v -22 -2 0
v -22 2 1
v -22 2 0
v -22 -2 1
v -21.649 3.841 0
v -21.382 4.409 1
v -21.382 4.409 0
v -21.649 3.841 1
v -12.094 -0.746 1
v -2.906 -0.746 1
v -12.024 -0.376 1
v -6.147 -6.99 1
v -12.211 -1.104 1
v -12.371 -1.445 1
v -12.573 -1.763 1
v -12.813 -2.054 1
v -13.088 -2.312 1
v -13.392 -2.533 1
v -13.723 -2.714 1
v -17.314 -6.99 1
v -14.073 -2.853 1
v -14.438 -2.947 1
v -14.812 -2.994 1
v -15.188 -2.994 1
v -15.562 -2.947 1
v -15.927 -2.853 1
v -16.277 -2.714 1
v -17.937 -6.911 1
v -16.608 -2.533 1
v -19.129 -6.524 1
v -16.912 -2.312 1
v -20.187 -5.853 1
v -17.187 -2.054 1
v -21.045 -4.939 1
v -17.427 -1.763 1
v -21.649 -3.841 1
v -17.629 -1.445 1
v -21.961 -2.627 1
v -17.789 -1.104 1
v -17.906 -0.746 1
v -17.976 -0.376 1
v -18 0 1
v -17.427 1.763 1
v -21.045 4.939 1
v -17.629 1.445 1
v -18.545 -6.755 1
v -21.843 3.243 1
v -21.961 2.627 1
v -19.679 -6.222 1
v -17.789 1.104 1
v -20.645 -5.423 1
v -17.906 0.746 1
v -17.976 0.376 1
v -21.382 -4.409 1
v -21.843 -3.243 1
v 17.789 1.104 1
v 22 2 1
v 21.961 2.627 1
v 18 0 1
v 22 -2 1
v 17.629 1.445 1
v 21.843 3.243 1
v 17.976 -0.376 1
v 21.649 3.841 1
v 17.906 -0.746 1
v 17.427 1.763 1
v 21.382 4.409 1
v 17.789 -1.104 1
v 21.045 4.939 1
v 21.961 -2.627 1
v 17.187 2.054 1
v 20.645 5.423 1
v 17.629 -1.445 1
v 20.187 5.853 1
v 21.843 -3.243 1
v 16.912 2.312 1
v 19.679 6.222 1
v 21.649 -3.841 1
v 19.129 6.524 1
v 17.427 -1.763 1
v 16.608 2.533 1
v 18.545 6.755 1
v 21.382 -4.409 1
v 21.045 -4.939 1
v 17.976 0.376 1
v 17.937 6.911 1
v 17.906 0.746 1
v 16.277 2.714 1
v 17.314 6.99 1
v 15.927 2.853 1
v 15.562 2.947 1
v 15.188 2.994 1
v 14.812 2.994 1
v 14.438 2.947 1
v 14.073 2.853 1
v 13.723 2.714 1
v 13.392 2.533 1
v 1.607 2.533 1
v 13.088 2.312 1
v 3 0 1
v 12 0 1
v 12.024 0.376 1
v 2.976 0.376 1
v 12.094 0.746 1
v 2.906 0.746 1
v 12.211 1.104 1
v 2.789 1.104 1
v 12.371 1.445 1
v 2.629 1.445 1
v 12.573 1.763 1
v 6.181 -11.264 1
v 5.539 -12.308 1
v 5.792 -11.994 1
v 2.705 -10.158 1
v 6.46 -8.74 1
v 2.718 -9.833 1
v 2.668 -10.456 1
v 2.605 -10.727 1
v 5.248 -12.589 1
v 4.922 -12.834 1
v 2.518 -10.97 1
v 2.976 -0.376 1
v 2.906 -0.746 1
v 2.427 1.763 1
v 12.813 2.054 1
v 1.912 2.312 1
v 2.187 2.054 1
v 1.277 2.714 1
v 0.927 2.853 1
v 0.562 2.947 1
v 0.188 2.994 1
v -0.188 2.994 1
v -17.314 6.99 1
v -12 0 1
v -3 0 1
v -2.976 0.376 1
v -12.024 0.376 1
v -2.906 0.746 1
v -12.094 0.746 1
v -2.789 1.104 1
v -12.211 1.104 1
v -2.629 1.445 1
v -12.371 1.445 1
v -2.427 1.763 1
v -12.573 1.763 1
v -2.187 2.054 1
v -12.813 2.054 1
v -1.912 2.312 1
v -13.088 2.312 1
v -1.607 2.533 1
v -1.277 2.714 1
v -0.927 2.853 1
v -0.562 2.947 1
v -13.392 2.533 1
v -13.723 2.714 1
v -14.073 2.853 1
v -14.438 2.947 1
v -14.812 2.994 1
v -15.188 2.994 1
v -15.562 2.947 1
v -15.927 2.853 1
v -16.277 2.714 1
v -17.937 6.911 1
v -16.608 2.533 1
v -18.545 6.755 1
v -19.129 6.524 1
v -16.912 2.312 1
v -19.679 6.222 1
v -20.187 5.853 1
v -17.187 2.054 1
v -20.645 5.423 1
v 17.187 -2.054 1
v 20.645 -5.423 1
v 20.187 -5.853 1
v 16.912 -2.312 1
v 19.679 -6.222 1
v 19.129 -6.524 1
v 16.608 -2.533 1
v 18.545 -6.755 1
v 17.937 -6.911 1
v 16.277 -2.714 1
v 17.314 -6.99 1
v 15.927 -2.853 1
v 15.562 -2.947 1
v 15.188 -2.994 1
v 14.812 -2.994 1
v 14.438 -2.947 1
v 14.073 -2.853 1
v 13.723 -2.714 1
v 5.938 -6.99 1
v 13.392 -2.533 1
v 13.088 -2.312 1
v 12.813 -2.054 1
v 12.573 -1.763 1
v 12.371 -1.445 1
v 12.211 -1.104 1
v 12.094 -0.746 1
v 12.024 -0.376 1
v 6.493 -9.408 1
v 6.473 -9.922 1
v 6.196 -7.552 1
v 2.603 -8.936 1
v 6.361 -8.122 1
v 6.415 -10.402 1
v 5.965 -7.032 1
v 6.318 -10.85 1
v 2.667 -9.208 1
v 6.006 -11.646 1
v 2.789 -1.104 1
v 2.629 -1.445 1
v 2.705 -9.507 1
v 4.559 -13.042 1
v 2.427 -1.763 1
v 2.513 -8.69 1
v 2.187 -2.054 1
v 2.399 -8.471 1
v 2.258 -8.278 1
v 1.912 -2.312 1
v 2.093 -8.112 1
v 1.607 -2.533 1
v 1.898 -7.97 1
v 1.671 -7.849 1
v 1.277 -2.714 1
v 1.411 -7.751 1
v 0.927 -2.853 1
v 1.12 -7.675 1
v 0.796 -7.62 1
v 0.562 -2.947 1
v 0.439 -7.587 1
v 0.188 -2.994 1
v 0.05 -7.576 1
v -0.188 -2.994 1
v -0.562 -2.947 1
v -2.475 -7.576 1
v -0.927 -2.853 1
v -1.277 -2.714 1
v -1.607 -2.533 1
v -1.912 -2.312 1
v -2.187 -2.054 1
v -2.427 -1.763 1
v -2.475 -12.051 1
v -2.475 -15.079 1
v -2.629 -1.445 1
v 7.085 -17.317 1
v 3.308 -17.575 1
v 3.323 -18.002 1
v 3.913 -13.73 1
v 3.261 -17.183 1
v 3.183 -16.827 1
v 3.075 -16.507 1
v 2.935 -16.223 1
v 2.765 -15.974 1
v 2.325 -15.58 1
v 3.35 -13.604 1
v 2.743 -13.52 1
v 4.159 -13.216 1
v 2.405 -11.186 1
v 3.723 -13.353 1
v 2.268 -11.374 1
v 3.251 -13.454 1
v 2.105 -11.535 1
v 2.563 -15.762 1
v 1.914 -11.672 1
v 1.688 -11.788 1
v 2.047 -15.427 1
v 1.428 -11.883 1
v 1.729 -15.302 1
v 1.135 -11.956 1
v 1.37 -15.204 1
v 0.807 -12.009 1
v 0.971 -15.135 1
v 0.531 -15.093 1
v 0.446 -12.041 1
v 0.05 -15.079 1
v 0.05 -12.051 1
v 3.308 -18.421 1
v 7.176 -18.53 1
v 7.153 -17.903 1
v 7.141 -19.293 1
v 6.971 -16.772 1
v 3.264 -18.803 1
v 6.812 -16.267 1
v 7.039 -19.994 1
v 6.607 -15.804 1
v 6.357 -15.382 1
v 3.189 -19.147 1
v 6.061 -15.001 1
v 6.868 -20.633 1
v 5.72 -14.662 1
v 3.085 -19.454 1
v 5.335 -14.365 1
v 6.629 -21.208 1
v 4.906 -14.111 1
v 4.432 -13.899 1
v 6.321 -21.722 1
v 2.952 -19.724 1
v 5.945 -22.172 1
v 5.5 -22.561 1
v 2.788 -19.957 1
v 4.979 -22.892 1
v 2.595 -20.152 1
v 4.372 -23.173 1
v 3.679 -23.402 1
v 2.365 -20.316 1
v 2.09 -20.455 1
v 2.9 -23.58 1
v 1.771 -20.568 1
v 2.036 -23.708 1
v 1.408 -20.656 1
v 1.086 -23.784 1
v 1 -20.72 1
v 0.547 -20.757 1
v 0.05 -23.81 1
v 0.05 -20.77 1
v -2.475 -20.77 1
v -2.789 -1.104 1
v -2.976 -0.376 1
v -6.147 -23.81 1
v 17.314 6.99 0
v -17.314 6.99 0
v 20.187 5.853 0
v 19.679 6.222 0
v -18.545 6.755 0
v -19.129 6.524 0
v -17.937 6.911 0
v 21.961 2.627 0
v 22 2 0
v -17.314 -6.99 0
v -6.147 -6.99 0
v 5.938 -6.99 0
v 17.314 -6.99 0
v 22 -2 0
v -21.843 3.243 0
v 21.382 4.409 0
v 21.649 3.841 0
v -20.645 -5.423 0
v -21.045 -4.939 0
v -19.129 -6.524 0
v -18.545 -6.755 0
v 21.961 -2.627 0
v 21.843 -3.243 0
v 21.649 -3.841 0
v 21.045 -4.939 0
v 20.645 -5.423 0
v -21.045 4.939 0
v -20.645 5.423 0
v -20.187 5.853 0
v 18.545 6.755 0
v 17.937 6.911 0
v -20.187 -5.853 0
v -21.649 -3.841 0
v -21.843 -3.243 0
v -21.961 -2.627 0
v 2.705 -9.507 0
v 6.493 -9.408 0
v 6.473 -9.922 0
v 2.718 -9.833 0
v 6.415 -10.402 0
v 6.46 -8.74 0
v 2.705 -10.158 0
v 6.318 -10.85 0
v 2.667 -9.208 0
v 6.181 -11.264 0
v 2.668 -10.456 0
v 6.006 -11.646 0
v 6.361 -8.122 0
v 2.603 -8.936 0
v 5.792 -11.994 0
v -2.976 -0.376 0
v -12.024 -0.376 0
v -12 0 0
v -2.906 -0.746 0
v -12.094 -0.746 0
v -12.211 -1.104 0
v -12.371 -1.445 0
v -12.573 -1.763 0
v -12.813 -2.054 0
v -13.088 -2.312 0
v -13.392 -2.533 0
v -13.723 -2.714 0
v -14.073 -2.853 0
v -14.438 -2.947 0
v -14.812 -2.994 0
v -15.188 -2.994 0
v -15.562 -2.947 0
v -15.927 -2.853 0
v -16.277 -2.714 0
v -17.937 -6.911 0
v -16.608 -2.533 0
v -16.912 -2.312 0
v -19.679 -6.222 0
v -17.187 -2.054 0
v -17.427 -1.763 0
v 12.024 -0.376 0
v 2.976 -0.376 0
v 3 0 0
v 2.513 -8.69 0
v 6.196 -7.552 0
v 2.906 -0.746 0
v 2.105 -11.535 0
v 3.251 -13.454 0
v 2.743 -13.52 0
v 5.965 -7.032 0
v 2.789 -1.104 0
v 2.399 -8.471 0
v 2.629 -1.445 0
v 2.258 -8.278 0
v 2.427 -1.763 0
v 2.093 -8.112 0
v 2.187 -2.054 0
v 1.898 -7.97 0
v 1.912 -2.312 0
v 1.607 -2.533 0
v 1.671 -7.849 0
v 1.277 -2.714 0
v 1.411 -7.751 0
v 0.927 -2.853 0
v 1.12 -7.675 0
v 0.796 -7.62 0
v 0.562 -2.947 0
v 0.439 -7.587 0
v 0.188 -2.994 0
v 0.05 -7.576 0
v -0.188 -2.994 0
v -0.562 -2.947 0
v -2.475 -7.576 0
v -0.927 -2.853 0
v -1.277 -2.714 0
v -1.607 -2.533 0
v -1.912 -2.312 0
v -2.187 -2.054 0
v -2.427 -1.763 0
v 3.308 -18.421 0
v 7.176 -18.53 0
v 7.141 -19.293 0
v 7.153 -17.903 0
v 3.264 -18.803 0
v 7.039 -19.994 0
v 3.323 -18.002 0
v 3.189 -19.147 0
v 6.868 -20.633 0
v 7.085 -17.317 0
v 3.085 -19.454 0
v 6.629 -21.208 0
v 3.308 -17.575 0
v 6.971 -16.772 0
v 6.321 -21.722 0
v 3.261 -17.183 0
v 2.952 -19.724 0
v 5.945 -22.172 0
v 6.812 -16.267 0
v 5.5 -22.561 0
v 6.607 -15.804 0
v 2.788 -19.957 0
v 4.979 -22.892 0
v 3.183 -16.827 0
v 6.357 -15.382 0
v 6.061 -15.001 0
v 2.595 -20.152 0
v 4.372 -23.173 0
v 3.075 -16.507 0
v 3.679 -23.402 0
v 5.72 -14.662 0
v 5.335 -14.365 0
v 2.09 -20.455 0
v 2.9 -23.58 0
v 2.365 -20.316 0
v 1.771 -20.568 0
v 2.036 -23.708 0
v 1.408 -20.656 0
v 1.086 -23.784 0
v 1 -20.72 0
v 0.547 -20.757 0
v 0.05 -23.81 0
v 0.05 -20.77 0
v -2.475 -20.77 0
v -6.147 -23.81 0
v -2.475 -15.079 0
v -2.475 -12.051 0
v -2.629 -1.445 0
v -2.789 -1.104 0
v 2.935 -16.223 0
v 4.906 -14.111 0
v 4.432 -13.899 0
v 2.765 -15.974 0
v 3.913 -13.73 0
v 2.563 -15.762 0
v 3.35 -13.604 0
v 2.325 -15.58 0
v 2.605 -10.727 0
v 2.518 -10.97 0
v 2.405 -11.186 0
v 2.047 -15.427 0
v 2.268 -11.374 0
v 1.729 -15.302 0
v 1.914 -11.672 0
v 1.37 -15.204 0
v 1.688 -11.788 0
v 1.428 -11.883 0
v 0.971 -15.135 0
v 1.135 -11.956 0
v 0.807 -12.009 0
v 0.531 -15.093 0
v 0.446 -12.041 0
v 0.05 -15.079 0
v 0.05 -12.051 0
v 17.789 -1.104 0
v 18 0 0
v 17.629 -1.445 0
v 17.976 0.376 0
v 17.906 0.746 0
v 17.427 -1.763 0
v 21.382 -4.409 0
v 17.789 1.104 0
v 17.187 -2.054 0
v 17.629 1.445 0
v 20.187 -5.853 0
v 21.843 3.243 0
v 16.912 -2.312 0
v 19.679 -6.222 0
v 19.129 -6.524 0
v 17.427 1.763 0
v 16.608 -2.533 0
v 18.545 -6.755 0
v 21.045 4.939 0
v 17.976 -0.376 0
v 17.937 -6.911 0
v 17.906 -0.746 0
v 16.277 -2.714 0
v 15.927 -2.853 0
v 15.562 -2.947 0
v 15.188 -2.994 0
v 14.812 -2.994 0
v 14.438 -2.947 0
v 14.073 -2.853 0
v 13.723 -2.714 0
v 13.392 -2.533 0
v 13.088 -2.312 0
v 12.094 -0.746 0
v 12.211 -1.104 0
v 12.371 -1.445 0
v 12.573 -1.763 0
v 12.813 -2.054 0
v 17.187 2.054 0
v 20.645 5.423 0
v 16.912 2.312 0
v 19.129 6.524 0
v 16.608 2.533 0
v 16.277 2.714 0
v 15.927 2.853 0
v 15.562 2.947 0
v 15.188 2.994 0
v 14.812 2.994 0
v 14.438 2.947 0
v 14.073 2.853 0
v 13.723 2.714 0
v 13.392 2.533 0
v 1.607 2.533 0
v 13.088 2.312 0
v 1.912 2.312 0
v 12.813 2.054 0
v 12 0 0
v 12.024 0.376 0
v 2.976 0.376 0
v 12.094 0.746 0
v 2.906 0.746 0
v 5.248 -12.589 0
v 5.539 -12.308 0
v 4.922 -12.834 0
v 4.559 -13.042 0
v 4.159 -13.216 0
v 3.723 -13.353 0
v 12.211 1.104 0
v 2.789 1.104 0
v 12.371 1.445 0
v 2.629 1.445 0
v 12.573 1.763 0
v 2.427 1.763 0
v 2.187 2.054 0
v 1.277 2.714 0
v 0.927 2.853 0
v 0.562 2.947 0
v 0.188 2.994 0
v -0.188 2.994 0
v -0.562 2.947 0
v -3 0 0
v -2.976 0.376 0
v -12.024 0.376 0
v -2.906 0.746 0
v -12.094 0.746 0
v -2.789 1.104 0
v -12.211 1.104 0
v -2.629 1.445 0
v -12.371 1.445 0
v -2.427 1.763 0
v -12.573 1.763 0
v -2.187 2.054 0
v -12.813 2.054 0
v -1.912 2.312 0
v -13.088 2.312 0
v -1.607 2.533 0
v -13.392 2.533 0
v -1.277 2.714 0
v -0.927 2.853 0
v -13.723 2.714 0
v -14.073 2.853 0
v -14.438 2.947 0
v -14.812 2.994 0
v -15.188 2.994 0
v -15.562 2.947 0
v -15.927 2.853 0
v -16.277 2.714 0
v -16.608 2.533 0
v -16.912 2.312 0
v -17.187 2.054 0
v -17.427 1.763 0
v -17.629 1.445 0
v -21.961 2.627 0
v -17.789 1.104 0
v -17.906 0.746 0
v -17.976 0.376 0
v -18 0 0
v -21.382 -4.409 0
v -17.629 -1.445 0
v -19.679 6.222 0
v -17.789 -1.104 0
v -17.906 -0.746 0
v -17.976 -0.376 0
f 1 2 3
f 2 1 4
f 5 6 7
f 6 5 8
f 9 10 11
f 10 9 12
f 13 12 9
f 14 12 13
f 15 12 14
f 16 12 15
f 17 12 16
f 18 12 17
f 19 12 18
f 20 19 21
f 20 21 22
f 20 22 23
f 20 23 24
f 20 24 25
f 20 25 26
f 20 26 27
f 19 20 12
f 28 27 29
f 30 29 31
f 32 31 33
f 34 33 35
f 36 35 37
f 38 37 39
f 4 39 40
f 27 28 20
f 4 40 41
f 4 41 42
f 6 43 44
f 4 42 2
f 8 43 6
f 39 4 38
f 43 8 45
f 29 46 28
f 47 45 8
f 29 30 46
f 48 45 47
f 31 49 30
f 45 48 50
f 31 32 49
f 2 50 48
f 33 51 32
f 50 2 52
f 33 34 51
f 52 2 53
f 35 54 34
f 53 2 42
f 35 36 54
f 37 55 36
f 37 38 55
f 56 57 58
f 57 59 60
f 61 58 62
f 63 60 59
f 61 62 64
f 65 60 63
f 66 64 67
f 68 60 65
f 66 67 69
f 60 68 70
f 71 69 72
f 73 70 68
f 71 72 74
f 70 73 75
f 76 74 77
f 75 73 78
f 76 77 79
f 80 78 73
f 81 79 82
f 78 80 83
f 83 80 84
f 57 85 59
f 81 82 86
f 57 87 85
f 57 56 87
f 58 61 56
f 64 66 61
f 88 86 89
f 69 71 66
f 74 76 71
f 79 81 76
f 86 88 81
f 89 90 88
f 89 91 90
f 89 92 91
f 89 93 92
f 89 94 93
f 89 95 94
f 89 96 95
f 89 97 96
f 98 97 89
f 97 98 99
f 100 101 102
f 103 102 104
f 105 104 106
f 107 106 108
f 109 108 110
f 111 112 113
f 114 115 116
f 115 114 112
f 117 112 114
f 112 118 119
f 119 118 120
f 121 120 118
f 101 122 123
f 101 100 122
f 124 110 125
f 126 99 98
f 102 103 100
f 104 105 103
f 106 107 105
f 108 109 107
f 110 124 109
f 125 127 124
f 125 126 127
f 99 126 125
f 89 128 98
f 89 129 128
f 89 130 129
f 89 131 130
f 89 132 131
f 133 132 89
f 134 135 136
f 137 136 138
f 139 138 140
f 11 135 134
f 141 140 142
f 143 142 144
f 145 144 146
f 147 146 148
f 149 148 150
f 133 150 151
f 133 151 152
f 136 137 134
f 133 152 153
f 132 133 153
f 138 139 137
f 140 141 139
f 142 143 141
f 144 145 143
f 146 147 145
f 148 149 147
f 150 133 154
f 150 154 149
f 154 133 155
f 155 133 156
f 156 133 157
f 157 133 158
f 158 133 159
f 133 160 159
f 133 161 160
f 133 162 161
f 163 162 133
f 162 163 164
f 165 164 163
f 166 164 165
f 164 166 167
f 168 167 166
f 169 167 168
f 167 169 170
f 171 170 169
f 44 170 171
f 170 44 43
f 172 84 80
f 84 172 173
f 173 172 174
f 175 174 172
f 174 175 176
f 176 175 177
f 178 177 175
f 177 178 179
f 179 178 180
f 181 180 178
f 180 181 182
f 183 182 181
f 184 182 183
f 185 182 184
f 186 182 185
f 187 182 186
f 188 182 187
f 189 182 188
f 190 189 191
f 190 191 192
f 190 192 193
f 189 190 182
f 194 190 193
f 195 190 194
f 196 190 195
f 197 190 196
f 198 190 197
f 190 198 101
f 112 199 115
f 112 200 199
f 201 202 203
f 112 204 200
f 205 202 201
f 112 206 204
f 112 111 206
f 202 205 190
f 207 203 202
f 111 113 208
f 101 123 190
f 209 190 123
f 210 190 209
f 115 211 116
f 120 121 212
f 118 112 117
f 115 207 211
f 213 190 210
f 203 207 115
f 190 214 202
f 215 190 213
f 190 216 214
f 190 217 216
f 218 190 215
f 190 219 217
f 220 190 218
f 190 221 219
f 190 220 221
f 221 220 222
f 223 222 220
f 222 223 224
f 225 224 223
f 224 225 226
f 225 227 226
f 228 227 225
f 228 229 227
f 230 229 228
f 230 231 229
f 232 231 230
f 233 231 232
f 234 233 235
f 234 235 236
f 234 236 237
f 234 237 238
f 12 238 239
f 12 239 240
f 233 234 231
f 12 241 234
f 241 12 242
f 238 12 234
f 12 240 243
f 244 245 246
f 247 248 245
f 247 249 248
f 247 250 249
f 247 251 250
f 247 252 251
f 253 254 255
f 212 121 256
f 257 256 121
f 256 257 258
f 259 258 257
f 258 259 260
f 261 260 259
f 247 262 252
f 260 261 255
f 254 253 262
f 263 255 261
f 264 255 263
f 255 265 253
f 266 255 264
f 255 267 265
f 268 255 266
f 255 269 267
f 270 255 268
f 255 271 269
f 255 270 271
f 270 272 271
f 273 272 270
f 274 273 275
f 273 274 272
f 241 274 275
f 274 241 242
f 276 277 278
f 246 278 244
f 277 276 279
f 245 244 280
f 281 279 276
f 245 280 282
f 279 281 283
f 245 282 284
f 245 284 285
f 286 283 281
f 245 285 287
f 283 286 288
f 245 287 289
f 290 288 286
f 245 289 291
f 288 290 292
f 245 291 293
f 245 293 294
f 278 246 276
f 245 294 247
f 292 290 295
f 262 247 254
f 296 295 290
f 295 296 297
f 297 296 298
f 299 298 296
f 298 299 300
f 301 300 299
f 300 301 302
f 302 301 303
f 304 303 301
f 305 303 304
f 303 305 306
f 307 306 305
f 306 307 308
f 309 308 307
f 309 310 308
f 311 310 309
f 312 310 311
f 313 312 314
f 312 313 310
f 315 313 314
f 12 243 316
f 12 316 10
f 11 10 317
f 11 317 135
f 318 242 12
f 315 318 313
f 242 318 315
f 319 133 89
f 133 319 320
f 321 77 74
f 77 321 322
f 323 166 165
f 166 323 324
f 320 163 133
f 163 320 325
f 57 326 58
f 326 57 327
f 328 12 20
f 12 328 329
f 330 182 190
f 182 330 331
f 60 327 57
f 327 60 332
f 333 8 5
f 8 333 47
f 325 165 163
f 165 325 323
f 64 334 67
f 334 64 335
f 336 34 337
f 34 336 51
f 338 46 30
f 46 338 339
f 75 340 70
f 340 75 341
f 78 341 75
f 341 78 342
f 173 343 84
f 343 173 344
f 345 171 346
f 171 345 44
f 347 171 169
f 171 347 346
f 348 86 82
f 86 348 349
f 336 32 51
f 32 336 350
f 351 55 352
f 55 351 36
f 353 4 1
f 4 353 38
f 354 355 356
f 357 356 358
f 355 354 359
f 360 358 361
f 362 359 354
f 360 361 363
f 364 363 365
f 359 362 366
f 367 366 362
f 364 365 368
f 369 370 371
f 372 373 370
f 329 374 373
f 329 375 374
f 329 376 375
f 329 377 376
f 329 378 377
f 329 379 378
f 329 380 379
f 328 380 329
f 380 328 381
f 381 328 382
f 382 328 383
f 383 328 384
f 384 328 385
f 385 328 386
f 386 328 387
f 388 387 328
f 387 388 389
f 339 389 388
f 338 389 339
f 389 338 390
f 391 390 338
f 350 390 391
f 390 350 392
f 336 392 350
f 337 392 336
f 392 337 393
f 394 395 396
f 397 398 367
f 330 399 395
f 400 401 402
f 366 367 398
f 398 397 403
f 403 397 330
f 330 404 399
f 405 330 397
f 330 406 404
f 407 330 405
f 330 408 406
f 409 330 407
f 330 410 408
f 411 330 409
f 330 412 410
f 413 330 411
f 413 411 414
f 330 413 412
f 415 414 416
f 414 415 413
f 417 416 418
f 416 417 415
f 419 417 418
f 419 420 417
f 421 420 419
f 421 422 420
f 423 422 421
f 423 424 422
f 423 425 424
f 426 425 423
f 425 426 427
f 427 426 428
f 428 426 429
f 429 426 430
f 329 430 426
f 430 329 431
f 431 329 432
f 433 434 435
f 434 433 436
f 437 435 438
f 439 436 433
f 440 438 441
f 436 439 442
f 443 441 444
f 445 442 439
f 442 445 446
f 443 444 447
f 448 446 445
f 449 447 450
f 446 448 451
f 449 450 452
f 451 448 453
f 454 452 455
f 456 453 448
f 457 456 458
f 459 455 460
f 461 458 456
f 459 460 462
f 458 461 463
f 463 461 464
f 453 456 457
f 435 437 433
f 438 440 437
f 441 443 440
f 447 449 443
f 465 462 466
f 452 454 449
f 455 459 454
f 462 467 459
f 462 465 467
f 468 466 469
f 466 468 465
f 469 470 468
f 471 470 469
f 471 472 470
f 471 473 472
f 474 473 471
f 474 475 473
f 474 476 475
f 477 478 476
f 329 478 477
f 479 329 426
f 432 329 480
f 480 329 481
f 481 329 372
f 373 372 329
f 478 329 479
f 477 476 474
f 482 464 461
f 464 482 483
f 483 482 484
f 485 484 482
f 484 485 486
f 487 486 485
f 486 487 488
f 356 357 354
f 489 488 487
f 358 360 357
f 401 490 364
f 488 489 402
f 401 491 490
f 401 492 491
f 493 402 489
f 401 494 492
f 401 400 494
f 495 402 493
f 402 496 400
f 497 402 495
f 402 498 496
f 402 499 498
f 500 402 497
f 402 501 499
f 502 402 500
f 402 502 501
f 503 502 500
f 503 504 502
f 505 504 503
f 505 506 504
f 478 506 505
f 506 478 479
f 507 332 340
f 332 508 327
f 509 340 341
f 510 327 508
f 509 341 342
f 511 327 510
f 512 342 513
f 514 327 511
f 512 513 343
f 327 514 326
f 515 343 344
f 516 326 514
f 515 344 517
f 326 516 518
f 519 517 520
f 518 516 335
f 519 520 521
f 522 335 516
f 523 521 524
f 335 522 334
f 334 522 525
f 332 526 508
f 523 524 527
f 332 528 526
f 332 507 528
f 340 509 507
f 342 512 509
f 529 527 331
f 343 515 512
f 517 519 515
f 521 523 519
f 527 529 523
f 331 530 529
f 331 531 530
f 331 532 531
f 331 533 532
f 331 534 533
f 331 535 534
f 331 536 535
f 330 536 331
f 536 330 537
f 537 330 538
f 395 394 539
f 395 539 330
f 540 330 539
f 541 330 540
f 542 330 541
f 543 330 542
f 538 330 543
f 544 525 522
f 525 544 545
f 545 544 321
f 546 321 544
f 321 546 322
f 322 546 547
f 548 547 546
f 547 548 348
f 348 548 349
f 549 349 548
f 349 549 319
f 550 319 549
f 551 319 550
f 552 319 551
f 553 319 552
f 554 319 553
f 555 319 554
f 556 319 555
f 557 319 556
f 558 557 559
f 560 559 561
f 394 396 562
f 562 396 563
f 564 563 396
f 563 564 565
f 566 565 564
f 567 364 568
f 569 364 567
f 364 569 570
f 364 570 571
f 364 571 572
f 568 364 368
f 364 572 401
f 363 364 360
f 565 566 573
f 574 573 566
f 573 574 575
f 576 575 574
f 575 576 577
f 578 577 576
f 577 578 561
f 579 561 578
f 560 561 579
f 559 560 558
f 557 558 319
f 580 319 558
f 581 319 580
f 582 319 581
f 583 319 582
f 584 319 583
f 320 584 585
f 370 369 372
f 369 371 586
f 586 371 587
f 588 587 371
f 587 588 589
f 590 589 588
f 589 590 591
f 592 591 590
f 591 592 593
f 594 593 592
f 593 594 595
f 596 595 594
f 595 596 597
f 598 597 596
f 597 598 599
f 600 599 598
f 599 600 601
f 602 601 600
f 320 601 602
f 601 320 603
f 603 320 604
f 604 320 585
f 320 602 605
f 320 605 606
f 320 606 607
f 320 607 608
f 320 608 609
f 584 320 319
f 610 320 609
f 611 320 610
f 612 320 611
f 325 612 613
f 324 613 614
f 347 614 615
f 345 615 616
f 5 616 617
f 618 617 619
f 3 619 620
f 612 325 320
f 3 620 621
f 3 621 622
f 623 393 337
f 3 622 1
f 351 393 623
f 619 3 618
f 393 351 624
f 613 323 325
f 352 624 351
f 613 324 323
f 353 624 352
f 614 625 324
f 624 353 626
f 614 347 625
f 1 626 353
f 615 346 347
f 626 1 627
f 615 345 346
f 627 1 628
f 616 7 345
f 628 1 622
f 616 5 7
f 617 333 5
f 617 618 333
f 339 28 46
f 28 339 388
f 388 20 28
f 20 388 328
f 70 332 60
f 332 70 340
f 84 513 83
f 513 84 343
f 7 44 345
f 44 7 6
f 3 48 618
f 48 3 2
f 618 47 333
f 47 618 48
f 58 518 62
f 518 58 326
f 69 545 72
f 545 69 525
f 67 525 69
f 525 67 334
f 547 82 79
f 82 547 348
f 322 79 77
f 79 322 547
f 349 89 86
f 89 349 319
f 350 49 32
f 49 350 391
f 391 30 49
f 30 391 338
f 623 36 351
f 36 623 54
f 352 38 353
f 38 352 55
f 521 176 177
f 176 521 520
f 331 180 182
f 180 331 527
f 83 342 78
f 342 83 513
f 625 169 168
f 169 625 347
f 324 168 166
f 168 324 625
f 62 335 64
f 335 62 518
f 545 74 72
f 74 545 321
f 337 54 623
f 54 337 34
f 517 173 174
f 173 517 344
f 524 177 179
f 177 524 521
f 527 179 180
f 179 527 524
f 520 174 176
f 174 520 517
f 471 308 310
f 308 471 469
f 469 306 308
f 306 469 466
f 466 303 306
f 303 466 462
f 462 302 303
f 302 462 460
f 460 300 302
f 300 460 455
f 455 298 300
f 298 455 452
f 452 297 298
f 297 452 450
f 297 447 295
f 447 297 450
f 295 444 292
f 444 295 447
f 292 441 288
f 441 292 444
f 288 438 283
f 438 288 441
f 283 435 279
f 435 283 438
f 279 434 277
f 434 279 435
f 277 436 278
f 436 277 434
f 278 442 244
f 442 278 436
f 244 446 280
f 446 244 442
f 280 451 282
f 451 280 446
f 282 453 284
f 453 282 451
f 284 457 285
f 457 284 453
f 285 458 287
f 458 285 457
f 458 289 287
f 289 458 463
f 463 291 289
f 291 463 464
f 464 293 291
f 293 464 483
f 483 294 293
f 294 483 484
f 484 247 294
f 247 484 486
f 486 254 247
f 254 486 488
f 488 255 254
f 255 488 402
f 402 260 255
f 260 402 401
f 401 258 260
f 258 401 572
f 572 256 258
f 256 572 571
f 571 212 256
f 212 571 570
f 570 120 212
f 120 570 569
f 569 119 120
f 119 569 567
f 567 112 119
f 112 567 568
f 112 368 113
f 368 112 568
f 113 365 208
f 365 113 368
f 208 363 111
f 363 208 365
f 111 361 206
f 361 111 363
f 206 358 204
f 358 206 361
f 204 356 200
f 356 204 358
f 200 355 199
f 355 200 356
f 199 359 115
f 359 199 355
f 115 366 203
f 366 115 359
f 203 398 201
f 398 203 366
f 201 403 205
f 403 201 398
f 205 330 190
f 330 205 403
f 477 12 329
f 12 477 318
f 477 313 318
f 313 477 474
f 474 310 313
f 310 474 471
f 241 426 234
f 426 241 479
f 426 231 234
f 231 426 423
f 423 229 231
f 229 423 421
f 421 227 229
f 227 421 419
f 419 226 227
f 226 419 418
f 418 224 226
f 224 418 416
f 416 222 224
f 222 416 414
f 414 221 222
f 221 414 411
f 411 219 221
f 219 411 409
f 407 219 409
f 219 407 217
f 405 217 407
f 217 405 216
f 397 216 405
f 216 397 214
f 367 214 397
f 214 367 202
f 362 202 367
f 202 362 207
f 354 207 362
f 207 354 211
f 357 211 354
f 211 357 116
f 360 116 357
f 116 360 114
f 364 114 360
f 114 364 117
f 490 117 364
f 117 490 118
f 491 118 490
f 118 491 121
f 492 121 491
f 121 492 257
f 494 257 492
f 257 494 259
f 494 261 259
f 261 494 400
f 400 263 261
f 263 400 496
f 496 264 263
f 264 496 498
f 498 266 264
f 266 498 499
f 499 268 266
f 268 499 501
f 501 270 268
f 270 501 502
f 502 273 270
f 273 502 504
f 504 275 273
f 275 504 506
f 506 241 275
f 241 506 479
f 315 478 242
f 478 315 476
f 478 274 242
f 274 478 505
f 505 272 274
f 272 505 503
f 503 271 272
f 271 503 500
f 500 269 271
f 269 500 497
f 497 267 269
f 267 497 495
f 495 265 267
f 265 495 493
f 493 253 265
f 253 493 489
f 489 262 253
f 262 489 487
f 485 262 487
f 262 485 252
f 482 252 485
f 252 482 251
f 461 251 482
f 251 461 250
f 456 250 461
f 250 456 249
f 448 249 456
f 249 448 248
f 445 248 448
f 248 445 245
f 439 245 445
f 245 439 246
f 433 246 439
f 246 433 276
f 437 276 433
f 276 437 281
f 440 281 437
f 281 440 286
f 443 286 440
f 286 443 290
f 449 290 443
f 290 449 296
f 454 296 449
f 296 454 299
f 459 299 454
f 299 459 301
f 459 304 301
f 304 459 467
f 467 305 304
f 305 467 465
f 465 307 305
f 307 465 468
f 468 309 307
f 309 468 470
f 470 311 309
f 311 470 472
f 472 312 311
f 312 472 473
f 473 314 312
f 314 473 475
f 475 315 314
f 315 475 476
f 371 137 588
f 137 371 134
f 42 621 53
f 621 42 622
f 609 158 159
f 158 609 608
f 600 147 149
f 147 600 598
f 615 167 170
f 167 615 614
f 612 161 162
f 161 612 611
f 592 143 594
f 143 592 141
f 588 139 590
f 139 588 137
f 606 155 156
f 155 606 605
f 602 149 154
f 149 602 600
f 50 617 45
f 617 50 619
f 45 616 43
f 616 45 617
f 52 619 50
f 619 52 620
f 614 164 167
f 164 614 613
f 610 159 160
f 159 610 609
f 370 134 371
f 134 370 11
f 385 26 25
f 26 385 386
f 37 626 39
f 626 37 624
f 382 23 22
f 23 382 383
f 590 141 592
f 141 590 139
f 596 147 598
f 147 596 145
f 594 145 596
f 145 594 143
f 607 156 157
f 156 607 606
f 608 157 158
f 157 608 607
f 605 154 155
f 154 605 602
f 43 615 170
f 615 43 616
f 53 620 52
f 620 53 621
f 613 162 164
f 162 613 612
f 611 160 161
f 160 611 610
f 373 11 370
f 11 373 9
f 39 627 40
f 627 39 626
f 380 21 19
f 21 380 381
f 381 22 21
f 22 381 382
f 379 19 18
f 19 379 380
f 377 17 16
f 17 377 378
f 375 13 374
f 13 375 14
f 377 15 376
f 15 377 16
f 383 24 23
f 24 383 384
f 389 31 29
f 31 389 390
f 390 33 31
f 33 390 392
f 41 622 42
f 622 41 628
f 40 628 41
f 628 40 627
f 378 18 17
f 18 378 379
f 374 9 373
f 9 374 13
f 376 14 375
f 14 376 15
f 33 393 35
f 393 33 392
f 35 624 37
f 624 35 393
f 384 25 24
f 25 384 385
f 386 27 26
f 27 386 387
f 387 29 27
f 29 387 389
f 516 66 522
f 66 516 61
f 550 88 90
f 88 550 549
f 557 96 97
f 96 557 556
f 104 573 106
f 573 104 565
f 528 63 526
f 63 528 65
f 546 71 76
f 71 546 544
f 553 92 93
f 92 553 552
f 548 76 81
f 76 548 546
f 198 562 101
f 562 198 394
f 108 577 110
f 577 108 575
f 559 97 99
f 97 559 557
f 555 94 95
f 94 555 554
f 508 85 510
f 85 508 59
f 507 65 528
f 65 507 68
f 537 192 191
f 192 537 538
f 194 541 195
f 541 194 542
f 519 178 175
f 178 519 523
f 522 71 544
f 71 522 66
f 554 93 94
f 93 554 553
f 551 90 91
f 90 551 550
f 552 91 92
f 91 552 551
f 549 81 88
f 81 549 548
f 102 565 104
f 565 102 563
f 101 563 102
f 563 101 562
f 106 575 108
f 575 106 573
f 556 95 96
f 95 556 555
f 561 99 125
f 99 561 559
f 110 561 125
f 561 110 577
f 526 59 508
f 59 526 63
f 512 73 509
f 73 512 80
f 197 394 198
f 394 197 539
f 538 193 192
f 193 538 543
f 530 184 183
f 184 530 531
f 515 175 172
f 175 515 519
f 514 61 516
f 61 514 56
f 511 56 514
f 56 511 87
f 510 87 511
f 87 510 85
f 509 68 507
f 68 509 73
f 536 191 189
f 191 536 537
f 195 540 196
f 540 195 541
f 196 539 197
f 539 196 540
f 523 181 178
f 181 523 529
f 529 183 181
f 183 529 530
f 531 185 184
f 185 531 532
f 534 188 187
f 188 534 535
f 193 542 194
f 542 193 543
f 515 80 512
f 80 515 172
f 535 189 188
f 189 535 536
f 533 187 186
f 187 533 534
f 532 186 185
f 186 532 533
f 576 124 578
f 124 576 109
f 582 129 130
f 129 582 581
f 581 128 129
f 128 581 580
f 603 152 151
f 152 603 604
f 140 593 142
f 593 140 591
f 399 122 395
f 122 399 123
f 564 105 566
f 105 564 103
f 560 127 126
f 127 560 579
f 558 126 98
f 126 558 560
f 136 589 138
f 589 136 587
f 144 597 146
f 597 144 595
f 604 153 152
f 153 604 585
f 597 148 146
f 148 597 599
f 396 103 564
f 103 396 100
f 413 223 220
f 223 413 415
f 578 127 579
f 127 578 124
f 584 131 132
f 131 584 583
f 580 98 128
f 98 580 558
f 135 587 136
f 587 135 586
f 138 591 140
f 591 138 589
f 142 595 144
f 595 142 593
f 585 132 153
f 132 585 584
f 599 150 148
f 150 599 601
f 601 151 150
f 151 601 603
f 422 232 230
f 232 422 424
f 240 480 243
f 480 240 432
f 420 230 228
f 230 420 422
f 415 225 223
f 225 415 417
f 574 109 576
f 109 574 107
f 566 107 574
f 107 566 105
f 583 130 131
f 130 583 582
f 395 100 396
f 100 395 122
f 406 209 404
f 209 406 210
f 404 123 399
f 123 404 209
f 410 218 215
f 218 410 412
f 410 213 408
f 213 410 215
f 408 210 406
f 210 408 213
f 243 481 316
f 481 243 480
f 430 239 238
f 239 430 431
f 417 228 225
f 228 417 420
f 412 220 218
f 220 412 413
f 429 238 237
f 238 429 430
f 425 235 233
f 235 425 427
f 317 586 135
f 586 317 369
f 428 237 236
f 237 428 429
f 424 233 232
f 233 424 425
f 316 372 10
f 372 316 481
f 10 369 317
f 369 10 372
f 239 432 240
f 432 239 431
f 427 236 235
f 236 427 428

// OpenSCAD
$fn = 50;


difference() {
	union() {
		translate(v = [0, 0, 0]) {
			rotate(a = [0, 0, 0]) {
				hull() {
					translate(v = [-17.0000000000, 2.0000000000, 0]) {
						rotate(a = [0, 0, 0]) {
							translate(v = [0, 0, 0]) {
								rotate(a = [0, 0, 0]) {
									cylinder(h = 1, r = 5);
								}
							}
						}
					}
					translate(v = [17.0000000000, 2.0000000000, 0]) {
						rotate(a = [0, 0, 0]) {
							translate(v = [0, 0, 0]) {
								rotate(a = [0, 0, 0]) {
									cylinder(h = 1, r = 5);
								}
							}
						}
					}
					translate(v = [-17.0000000000, -2.0000000000, 0]) {
						rotate(a = [0, 0, 0]) {
							translate(v = [0, 0, 0]) {
								rotate(a = [0, 0, 0]) {
									cylinder(h = 1, r = 5);
								}
							}
						}
					}
					translate(v = [17.0000000000, -2.0000000000, 0]) {
						rotate(a = [0, 0, 0]) {
							translate(v = [0, 0, 0]) {
								rotate(a = [0, 0, 0]) {
									cylinder(h = 1, r = 5);
								}
							}
						}
					}
				}
			}
		}
		translate(v = [0, -5, 0]) {
			rotate(a = [0, 0, 0]) {
				linear_extrude(height = 1) {
					text(font = "DejaVu Sans Mono:style=Bold", halign = "center", size = 19.0000000000, text = "B", valign = "top");
				}
			}
		}
	}
	union() {
		translate(v = [-15.0000000000, 0.0000000000, -125.0000000000]) {
			rotate(a = [0, 0, 0]) {
				cylinder(h = 250, r = 3.0000000000);
			}
		}
		translate(v = [15.0000000000, 0.0000000000, -125.0000000000]) {
			rotate(a = [0, 0, 0]) {
				cylinder(h = 250, r = 3.0000000000);
			}
		}
		translate(v = [15.0000000000, 0.0000000000, -125.0000000000]) {
			rotate(a = [0, 0, 0]) {
				cylinder(h = 250, r = 3.0000000000);
			}
		}
		translate(v = [0, 0, -125.0000000000]) {
			rotate(a = [0, 0, 0]) {
				cylinder(h = 250, r = 3.0000000000);
			}
		}
	}
}
